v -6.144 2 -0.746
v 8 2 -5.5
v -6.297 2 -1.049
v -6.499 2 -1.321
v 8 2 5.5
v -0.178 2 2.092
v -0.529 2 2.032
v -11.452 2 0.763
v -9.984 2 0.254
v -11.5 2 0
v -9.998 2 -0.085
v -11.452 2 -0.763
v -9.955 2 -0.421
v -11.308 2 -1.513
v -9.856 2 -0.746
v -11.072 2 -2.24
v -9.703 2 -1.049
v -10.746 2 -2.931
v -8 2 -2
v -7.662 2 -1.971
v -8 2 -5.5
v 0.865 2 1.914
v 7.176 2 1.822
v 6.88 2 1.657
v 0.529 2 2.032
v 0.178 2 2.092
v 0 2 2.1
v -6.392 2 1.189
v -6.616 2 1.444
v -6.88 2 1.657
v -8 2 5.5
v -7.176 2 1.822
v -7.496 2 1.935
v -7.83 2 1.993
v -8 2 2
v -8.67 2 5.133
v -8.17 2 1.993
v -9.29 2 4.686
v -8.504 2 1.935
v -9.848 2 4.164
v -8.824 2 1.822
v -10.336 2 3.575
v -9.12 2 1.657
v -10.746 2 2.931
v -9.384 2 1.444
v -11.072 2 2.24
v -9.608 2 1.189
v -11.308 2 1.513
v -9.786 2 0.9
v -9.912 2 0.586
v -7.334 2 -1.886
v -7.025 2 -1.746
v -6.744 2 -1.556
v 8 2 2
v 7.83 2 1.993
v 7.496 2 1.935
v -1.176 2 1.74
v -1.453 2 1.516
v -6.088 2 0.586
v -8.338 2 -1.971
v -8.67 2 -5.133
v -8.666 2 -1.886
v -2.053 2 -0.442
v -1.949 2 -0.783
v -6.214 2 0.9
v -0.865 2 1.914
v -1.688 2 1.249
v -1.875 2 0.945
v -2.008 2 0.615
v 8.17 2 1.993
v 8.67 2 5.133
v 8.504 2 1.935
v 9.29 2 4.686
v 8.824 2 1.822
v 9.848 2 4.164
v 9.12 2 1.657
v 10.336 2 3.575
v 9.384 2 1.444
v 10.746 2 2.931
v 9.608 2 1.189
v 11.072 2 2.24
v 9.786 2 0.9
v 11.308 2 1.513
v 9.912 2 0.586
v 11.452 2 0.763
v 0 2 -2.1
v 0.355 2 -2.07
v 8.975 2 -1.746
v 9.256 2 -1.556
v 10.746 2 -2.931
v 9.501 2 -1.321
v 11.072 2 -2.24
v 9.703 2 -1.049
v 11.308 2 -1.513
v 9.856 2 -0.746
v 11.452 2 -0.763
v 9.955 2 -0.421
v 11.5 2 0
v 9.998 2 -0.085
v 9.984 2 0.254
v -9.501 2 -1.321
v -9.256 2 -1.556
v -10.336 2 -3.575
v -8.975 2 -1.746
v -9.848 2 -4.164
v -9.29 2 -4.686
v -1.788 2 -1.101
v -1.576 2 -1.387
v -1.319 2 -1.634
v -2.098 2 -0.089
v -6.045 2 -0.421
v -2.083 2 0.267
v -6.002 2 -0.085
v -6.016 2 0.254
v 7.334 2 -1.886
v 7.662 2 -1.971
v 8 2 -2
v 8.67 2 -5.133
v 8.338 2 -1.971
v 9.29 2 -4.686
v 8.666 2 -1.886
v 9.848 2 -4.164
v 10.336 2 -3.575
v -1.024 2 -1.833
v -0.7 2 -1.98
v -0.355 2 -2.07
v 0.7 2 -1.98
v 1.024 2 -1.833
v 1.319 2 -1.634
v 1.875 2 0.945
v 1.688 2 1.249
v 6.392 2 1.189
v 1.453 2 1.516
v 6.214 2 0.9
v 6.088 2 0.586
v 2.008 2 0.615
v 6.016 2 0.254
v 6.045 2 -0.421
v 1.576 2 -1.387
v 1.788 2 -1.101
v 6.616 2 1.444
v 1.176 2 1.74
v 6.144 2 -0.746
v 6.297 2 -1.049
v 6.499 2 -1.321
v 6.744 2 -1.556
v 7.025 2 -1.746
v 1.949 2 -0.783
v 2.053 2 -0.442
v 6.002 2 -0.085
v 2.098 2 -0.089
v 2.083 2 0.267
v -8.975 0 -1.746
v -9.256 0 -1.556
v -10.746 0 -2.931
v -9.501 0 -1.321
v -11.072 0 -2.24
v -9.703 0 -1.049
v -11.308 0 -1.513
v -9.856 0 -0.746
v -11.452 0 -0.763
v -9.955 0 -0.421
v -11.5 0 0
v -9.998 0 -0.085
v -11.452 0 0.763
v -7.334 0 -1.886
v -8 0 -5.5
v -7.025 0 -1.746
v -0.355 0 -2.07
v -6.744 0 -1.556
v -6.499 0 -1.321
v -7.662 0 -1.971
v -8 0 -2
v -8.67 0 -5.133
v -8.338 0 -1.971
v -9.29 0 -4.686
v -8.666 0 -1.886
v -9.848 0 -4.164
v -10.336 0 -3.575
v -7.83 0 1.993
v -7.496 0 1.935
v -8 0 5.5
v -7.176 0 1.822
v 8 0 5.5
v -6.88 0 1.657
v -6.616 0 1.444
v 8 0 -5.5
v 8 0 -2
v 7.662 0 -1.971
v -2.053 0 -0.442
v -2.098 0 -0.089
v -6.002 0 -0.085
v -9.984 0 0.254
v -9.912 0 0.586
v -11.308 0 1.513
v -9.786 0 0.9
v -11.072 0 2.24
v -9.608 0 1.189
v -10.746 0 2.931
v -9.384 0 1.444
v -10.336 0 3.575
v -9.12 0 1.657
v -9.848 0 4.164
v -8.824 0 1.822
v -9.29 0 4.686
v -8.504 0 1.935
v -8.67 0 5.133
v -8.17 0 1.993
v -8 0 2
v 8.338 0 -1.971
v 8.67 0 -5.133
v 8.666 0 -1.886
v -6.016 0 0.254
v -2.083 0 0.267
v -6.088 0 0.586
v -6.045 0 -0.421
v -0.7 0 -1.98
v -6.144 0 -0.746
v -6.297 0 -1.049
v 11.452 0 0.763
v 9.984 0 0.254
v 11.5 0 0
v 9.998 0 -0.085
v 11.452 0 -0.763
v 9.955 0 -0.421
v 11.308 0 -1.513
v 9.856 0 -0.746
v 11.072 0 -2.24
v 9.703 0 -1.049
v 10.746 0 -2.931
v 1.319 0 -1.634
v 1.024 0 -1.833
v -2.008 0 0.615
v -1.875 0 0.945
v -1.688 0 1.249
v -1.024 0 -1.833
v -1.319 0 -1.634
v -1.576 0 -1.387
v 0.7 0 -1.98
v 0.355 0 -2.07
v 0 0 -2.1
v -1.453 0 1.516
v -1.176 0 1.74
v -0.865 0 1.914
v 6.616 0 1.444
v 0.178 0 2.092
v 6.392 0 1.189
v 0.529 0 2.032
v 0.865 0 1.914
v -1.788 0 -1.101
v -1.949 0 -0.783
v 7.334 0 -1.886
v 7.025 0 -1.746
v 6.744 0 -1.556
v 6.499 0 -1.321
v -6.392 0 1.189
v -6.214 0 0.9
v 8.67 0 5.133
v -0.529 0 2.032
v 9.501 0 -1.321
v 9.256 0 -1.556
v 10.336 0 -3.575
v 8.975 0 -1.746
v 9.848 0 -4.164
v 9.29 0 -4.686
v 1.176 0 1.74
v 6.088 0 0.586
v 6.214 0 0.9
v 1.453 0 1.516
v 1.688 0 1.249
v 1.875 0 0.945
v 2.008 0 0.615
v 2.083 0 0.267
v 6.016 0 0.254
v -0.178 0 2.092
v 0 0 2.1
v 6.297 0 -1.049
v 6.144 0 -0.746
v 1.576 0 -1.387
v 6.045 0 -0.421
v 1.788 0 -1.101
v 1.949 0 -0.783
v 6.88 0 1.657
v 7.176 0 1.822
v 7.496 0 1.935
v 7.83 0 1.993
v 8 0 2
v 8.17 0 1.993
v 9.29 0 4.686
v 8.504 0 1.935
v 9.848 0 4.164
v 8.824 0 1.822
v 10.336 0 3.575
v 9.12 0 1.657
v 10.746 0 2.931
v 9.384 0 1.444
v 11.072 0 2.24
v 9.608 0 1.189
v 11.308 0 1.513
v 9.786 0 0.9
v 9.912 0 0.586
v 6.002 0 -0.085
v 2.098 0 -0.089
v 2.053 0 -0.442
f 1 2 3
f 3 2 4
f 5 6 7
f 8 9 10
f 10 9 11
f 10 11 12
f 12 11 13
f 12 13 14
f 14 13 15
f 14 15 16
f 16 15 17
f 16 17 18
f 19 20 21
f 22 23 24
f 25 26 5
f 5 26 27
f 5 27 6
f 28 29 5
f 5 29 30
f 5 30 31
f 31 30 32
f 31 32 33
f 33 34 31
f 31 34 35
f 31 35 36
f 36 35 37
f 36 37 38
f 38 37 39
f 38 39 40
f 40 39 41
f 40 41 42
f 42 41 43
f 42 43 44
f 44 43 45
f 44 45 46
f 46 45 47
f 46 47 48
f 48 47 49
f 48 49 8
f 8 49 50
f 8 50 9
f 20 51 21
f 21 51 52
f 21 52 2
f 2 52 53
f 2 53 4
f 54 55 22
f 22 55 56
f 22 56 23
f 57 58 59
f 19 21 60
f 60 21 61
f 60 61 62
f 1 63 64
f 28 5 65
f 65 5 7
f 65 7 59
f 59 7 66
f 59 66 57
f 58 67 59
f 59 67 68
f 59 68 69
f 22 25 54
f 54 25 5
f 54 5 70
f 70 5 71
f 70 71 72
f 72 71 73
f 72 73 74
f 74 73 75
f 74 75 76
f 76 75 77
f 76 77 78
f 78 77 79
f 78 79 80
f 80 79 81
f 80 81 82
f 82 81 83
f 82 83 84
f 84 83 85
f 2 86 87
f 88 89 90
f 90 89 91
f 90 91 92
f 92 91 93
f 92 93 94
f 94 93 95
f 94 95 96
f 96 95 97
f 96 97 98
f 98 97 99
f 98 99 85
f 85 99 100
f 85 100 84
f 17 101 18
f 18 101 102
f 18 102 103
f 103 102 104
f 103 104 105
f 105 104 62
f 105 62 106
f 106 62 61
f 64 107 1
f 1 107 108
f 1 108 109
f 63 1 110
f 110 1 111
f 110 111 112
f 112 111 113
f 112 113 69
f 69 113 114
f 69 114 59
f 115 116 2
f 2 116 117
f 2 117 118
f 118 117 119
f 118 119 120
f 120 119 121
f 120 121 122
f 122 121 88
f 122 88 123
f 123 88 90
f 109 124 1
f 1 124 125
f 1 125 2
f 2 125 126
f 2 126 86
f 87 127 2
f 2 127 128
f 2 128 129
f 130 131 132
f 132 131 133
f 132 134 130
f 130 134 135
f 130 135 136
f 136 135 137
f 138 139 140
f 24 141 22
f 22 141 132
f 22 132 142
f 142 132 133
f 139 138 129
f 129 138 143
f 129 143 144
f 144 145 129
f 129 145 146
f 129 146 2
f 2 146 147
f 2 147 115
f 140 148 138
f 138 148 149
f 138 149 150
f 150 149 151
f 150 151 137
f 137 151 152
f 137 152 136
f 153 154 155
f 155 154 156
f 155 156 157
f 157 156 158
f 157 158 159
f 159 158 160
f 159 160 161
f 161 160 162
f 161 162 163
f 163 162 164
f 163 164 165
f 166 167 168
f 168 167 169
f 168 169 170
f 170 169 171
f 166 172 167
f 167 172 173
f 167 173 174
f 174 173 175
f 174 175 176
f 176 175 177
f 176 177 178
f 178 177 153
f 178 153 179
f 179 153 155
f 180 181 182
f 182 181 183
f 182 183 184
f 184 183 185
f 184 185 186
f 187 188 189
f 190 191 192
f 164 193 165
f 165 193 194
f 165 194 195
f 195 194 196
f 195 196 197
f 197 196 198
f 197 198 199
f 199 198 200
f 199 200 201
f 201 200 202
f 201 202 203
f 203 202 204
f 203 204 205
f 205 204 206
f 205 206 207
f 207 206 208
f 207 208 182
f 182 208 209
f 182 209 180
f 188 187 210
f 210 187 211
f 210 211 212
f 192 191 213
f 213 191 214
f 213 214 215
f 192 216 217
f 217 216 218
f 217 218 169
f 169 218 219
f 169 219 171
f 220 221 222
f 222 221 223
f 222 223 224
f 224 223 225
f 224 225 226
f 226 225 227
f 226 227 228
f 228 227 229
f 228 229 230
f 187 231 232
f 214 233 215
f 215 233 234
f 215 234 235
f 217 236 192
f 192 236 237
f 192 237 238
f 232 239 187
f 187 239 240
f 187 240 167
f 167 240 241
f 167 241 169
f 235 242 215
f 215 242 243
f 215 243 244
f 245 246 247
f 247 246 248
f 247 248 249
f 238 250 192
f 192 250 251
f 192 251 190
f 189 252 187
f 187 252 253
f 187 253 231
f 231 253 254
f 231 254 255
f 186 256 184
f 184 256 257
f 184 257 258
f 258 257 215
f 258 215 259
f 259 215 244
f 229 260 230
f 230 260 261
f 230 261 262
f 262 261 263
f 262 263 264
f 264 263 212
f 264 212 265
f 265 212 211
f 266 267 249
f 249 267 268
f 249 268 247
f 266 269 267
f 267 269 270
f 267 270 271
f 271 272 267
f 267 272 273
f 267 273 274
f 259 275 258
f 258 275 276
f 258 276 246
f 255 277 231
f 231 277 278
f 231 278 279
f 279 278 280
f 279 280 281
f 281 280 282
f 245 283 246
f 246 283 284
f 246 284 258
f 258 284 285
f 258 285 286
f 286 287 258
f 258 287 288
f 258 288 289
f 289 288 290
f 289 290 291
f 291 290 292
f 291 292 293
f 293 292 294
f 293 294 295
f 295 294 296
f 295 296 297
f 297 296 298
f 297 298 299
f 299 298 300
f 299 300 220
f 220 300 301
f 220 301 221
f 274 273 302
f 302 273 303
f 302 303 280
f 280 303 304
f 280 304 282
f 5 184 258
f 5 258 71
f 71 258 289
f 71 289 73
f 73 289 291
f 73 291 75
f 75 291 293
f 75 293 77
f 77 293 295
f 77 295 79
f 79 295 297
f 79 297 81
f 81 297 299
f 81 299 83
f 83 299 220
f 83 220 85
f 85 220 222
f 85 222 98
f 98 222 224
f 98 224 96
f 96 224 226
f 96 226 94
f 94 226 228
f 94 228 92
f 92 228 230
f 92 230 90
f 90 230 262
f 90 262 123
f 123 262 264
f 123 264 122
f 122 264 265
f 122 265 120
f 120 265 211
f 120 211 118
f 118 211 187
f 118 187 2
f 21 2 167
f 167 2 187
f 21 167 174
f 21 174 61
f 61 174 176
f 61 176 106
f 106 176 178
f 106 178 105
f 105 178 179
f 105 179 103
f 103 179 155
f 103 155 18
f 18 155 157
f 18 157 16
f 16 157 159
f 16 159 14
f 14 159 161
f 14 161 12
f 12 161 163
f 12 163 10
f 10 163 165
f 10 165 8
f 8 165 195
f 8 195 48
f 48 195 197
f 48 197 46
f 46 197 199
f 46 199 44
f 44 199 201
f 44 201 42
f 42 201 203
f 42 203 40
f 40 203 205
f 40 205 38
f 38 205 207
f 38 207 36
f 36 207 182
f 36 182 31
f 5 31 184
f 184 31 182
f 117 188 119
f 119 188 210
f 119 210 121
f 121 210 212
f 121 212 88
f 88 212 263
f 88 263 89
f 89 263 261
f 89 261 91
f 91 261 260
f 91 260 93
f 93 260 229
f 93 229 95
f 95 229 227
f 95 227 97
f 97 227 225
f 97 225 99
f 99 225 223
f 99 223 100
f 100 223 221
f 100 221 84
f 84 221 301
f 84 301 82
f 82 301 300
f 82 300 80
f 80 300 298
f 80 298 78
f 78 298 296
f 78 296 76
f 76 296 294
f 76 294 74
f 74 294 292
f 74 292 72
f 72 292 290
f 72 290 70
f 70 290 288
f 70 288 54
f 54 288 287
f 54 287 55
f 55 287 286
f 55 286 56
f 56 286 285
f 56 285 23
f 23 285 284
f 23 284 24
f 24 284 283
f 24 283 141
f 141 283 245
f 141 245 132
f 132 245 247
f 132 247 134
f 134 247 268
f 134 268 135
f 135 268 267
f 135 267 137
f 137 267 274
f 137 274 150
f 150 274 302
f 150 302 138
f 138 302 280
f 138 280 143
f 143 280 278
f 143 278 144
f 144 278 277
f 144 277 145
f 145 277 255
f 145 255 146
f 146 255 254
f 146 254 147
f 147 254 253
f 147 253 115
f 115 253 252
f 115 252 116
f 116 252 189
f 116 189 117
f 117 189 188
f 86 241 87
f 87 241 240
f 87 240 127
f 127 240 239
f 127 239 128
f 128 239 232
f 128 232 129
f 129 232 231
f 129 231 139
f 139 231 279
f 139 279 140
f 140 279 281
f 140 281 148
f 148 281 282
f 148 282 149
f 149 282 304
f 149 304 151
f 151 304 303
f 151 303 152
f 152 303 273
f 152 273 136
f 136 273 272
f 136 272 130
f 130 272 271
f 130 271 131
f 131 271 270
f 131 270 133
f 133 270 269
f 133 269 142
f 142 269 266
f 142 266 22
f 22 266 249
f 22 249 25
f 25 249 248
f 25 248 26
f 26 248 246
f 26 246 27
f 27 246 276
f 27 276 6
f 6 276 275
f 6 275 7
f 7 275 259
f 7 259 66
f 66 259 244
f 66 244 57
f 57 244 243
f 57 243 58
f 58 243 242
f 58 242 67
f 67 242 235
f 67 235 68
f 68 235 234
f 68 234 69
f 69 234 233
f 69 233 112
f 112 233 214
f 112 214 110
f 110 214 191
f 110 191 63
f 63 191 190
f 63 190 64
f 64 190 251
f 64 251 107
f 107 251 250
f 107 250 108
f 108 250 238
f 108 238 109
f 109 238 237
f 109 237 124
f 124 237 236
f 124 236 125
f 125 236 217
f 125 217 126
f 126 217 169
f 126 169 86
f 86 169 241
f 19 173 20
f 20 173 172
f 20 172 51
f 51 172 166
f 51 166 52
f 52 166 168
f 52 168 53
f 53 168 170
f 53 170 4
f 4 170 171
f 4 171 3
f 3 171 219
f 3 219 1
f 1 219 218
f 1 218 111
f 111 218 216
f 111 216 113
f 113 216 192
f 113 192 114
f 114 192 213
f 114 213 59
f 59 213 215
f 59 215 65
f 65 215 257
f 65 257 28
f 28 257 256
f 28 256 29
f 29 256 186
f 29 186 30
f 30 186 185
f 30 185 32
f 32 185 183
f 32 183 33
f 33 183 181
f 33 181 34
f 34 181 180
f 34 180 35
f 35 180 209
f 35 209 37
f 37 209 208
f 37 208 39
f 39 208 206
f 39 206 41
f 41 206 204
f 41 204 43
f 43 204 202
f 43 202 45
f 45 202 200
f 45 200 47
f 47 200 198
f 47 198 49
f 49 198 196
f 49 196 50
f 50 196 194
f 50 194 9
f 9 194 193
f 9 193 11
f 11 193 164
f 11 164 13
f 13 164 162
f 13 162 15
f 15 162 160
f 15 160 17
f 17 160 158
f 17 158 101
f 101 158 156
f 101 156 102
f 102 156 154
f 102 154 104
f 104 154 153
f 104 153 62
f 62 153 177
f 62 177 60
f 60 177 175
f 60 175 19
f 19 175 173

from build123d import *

# Parameters (mm, degrees)
CROQUIS1_R              = 2
CROQUIS1_R_2            = 2.1
SALIENTE_EXTRUIR1_DEPTH = 2


with BuildPart() as part:
    # Croquis1 → Saliente-Extruir1 (new body)
    with BuildSketch(Plane(origin=(0, 0, 0), x_dir=(1, 0, 0), z_dir=(0, 1, 0))):
        with BuildLine():
            Line((-8, 5.5), (8, 5.5))
            ThreePointArc((8, 5.5), (11.5, 0), (8, -5.5))
            Line((8, -5.5), (-8, -5.5))
            ThreePointArc((-8, -5.5), (-11.5, 0), (-8, 5.5))
        make_face()
        with Locations(Location((8, 0, 0), (0, 0, 270))):
            Circle(CROQUIS1_R, mode=Mode.SUBTRACT)
        with Locations(Location((0, 0, 0), (0, 0, 270))):
            Circle(CROQUIS1_R_2, mode=Mode.SUBTRACT)
        with Locations(Location((-8, 0, 0), (0, 0, 270))):
            Circle(CROQUIS1_R, mode=Mode.SUBTRACT)
    extrude(amount=SALIENTE_EXTRUIR1_DEPTH)


solid = part.part
